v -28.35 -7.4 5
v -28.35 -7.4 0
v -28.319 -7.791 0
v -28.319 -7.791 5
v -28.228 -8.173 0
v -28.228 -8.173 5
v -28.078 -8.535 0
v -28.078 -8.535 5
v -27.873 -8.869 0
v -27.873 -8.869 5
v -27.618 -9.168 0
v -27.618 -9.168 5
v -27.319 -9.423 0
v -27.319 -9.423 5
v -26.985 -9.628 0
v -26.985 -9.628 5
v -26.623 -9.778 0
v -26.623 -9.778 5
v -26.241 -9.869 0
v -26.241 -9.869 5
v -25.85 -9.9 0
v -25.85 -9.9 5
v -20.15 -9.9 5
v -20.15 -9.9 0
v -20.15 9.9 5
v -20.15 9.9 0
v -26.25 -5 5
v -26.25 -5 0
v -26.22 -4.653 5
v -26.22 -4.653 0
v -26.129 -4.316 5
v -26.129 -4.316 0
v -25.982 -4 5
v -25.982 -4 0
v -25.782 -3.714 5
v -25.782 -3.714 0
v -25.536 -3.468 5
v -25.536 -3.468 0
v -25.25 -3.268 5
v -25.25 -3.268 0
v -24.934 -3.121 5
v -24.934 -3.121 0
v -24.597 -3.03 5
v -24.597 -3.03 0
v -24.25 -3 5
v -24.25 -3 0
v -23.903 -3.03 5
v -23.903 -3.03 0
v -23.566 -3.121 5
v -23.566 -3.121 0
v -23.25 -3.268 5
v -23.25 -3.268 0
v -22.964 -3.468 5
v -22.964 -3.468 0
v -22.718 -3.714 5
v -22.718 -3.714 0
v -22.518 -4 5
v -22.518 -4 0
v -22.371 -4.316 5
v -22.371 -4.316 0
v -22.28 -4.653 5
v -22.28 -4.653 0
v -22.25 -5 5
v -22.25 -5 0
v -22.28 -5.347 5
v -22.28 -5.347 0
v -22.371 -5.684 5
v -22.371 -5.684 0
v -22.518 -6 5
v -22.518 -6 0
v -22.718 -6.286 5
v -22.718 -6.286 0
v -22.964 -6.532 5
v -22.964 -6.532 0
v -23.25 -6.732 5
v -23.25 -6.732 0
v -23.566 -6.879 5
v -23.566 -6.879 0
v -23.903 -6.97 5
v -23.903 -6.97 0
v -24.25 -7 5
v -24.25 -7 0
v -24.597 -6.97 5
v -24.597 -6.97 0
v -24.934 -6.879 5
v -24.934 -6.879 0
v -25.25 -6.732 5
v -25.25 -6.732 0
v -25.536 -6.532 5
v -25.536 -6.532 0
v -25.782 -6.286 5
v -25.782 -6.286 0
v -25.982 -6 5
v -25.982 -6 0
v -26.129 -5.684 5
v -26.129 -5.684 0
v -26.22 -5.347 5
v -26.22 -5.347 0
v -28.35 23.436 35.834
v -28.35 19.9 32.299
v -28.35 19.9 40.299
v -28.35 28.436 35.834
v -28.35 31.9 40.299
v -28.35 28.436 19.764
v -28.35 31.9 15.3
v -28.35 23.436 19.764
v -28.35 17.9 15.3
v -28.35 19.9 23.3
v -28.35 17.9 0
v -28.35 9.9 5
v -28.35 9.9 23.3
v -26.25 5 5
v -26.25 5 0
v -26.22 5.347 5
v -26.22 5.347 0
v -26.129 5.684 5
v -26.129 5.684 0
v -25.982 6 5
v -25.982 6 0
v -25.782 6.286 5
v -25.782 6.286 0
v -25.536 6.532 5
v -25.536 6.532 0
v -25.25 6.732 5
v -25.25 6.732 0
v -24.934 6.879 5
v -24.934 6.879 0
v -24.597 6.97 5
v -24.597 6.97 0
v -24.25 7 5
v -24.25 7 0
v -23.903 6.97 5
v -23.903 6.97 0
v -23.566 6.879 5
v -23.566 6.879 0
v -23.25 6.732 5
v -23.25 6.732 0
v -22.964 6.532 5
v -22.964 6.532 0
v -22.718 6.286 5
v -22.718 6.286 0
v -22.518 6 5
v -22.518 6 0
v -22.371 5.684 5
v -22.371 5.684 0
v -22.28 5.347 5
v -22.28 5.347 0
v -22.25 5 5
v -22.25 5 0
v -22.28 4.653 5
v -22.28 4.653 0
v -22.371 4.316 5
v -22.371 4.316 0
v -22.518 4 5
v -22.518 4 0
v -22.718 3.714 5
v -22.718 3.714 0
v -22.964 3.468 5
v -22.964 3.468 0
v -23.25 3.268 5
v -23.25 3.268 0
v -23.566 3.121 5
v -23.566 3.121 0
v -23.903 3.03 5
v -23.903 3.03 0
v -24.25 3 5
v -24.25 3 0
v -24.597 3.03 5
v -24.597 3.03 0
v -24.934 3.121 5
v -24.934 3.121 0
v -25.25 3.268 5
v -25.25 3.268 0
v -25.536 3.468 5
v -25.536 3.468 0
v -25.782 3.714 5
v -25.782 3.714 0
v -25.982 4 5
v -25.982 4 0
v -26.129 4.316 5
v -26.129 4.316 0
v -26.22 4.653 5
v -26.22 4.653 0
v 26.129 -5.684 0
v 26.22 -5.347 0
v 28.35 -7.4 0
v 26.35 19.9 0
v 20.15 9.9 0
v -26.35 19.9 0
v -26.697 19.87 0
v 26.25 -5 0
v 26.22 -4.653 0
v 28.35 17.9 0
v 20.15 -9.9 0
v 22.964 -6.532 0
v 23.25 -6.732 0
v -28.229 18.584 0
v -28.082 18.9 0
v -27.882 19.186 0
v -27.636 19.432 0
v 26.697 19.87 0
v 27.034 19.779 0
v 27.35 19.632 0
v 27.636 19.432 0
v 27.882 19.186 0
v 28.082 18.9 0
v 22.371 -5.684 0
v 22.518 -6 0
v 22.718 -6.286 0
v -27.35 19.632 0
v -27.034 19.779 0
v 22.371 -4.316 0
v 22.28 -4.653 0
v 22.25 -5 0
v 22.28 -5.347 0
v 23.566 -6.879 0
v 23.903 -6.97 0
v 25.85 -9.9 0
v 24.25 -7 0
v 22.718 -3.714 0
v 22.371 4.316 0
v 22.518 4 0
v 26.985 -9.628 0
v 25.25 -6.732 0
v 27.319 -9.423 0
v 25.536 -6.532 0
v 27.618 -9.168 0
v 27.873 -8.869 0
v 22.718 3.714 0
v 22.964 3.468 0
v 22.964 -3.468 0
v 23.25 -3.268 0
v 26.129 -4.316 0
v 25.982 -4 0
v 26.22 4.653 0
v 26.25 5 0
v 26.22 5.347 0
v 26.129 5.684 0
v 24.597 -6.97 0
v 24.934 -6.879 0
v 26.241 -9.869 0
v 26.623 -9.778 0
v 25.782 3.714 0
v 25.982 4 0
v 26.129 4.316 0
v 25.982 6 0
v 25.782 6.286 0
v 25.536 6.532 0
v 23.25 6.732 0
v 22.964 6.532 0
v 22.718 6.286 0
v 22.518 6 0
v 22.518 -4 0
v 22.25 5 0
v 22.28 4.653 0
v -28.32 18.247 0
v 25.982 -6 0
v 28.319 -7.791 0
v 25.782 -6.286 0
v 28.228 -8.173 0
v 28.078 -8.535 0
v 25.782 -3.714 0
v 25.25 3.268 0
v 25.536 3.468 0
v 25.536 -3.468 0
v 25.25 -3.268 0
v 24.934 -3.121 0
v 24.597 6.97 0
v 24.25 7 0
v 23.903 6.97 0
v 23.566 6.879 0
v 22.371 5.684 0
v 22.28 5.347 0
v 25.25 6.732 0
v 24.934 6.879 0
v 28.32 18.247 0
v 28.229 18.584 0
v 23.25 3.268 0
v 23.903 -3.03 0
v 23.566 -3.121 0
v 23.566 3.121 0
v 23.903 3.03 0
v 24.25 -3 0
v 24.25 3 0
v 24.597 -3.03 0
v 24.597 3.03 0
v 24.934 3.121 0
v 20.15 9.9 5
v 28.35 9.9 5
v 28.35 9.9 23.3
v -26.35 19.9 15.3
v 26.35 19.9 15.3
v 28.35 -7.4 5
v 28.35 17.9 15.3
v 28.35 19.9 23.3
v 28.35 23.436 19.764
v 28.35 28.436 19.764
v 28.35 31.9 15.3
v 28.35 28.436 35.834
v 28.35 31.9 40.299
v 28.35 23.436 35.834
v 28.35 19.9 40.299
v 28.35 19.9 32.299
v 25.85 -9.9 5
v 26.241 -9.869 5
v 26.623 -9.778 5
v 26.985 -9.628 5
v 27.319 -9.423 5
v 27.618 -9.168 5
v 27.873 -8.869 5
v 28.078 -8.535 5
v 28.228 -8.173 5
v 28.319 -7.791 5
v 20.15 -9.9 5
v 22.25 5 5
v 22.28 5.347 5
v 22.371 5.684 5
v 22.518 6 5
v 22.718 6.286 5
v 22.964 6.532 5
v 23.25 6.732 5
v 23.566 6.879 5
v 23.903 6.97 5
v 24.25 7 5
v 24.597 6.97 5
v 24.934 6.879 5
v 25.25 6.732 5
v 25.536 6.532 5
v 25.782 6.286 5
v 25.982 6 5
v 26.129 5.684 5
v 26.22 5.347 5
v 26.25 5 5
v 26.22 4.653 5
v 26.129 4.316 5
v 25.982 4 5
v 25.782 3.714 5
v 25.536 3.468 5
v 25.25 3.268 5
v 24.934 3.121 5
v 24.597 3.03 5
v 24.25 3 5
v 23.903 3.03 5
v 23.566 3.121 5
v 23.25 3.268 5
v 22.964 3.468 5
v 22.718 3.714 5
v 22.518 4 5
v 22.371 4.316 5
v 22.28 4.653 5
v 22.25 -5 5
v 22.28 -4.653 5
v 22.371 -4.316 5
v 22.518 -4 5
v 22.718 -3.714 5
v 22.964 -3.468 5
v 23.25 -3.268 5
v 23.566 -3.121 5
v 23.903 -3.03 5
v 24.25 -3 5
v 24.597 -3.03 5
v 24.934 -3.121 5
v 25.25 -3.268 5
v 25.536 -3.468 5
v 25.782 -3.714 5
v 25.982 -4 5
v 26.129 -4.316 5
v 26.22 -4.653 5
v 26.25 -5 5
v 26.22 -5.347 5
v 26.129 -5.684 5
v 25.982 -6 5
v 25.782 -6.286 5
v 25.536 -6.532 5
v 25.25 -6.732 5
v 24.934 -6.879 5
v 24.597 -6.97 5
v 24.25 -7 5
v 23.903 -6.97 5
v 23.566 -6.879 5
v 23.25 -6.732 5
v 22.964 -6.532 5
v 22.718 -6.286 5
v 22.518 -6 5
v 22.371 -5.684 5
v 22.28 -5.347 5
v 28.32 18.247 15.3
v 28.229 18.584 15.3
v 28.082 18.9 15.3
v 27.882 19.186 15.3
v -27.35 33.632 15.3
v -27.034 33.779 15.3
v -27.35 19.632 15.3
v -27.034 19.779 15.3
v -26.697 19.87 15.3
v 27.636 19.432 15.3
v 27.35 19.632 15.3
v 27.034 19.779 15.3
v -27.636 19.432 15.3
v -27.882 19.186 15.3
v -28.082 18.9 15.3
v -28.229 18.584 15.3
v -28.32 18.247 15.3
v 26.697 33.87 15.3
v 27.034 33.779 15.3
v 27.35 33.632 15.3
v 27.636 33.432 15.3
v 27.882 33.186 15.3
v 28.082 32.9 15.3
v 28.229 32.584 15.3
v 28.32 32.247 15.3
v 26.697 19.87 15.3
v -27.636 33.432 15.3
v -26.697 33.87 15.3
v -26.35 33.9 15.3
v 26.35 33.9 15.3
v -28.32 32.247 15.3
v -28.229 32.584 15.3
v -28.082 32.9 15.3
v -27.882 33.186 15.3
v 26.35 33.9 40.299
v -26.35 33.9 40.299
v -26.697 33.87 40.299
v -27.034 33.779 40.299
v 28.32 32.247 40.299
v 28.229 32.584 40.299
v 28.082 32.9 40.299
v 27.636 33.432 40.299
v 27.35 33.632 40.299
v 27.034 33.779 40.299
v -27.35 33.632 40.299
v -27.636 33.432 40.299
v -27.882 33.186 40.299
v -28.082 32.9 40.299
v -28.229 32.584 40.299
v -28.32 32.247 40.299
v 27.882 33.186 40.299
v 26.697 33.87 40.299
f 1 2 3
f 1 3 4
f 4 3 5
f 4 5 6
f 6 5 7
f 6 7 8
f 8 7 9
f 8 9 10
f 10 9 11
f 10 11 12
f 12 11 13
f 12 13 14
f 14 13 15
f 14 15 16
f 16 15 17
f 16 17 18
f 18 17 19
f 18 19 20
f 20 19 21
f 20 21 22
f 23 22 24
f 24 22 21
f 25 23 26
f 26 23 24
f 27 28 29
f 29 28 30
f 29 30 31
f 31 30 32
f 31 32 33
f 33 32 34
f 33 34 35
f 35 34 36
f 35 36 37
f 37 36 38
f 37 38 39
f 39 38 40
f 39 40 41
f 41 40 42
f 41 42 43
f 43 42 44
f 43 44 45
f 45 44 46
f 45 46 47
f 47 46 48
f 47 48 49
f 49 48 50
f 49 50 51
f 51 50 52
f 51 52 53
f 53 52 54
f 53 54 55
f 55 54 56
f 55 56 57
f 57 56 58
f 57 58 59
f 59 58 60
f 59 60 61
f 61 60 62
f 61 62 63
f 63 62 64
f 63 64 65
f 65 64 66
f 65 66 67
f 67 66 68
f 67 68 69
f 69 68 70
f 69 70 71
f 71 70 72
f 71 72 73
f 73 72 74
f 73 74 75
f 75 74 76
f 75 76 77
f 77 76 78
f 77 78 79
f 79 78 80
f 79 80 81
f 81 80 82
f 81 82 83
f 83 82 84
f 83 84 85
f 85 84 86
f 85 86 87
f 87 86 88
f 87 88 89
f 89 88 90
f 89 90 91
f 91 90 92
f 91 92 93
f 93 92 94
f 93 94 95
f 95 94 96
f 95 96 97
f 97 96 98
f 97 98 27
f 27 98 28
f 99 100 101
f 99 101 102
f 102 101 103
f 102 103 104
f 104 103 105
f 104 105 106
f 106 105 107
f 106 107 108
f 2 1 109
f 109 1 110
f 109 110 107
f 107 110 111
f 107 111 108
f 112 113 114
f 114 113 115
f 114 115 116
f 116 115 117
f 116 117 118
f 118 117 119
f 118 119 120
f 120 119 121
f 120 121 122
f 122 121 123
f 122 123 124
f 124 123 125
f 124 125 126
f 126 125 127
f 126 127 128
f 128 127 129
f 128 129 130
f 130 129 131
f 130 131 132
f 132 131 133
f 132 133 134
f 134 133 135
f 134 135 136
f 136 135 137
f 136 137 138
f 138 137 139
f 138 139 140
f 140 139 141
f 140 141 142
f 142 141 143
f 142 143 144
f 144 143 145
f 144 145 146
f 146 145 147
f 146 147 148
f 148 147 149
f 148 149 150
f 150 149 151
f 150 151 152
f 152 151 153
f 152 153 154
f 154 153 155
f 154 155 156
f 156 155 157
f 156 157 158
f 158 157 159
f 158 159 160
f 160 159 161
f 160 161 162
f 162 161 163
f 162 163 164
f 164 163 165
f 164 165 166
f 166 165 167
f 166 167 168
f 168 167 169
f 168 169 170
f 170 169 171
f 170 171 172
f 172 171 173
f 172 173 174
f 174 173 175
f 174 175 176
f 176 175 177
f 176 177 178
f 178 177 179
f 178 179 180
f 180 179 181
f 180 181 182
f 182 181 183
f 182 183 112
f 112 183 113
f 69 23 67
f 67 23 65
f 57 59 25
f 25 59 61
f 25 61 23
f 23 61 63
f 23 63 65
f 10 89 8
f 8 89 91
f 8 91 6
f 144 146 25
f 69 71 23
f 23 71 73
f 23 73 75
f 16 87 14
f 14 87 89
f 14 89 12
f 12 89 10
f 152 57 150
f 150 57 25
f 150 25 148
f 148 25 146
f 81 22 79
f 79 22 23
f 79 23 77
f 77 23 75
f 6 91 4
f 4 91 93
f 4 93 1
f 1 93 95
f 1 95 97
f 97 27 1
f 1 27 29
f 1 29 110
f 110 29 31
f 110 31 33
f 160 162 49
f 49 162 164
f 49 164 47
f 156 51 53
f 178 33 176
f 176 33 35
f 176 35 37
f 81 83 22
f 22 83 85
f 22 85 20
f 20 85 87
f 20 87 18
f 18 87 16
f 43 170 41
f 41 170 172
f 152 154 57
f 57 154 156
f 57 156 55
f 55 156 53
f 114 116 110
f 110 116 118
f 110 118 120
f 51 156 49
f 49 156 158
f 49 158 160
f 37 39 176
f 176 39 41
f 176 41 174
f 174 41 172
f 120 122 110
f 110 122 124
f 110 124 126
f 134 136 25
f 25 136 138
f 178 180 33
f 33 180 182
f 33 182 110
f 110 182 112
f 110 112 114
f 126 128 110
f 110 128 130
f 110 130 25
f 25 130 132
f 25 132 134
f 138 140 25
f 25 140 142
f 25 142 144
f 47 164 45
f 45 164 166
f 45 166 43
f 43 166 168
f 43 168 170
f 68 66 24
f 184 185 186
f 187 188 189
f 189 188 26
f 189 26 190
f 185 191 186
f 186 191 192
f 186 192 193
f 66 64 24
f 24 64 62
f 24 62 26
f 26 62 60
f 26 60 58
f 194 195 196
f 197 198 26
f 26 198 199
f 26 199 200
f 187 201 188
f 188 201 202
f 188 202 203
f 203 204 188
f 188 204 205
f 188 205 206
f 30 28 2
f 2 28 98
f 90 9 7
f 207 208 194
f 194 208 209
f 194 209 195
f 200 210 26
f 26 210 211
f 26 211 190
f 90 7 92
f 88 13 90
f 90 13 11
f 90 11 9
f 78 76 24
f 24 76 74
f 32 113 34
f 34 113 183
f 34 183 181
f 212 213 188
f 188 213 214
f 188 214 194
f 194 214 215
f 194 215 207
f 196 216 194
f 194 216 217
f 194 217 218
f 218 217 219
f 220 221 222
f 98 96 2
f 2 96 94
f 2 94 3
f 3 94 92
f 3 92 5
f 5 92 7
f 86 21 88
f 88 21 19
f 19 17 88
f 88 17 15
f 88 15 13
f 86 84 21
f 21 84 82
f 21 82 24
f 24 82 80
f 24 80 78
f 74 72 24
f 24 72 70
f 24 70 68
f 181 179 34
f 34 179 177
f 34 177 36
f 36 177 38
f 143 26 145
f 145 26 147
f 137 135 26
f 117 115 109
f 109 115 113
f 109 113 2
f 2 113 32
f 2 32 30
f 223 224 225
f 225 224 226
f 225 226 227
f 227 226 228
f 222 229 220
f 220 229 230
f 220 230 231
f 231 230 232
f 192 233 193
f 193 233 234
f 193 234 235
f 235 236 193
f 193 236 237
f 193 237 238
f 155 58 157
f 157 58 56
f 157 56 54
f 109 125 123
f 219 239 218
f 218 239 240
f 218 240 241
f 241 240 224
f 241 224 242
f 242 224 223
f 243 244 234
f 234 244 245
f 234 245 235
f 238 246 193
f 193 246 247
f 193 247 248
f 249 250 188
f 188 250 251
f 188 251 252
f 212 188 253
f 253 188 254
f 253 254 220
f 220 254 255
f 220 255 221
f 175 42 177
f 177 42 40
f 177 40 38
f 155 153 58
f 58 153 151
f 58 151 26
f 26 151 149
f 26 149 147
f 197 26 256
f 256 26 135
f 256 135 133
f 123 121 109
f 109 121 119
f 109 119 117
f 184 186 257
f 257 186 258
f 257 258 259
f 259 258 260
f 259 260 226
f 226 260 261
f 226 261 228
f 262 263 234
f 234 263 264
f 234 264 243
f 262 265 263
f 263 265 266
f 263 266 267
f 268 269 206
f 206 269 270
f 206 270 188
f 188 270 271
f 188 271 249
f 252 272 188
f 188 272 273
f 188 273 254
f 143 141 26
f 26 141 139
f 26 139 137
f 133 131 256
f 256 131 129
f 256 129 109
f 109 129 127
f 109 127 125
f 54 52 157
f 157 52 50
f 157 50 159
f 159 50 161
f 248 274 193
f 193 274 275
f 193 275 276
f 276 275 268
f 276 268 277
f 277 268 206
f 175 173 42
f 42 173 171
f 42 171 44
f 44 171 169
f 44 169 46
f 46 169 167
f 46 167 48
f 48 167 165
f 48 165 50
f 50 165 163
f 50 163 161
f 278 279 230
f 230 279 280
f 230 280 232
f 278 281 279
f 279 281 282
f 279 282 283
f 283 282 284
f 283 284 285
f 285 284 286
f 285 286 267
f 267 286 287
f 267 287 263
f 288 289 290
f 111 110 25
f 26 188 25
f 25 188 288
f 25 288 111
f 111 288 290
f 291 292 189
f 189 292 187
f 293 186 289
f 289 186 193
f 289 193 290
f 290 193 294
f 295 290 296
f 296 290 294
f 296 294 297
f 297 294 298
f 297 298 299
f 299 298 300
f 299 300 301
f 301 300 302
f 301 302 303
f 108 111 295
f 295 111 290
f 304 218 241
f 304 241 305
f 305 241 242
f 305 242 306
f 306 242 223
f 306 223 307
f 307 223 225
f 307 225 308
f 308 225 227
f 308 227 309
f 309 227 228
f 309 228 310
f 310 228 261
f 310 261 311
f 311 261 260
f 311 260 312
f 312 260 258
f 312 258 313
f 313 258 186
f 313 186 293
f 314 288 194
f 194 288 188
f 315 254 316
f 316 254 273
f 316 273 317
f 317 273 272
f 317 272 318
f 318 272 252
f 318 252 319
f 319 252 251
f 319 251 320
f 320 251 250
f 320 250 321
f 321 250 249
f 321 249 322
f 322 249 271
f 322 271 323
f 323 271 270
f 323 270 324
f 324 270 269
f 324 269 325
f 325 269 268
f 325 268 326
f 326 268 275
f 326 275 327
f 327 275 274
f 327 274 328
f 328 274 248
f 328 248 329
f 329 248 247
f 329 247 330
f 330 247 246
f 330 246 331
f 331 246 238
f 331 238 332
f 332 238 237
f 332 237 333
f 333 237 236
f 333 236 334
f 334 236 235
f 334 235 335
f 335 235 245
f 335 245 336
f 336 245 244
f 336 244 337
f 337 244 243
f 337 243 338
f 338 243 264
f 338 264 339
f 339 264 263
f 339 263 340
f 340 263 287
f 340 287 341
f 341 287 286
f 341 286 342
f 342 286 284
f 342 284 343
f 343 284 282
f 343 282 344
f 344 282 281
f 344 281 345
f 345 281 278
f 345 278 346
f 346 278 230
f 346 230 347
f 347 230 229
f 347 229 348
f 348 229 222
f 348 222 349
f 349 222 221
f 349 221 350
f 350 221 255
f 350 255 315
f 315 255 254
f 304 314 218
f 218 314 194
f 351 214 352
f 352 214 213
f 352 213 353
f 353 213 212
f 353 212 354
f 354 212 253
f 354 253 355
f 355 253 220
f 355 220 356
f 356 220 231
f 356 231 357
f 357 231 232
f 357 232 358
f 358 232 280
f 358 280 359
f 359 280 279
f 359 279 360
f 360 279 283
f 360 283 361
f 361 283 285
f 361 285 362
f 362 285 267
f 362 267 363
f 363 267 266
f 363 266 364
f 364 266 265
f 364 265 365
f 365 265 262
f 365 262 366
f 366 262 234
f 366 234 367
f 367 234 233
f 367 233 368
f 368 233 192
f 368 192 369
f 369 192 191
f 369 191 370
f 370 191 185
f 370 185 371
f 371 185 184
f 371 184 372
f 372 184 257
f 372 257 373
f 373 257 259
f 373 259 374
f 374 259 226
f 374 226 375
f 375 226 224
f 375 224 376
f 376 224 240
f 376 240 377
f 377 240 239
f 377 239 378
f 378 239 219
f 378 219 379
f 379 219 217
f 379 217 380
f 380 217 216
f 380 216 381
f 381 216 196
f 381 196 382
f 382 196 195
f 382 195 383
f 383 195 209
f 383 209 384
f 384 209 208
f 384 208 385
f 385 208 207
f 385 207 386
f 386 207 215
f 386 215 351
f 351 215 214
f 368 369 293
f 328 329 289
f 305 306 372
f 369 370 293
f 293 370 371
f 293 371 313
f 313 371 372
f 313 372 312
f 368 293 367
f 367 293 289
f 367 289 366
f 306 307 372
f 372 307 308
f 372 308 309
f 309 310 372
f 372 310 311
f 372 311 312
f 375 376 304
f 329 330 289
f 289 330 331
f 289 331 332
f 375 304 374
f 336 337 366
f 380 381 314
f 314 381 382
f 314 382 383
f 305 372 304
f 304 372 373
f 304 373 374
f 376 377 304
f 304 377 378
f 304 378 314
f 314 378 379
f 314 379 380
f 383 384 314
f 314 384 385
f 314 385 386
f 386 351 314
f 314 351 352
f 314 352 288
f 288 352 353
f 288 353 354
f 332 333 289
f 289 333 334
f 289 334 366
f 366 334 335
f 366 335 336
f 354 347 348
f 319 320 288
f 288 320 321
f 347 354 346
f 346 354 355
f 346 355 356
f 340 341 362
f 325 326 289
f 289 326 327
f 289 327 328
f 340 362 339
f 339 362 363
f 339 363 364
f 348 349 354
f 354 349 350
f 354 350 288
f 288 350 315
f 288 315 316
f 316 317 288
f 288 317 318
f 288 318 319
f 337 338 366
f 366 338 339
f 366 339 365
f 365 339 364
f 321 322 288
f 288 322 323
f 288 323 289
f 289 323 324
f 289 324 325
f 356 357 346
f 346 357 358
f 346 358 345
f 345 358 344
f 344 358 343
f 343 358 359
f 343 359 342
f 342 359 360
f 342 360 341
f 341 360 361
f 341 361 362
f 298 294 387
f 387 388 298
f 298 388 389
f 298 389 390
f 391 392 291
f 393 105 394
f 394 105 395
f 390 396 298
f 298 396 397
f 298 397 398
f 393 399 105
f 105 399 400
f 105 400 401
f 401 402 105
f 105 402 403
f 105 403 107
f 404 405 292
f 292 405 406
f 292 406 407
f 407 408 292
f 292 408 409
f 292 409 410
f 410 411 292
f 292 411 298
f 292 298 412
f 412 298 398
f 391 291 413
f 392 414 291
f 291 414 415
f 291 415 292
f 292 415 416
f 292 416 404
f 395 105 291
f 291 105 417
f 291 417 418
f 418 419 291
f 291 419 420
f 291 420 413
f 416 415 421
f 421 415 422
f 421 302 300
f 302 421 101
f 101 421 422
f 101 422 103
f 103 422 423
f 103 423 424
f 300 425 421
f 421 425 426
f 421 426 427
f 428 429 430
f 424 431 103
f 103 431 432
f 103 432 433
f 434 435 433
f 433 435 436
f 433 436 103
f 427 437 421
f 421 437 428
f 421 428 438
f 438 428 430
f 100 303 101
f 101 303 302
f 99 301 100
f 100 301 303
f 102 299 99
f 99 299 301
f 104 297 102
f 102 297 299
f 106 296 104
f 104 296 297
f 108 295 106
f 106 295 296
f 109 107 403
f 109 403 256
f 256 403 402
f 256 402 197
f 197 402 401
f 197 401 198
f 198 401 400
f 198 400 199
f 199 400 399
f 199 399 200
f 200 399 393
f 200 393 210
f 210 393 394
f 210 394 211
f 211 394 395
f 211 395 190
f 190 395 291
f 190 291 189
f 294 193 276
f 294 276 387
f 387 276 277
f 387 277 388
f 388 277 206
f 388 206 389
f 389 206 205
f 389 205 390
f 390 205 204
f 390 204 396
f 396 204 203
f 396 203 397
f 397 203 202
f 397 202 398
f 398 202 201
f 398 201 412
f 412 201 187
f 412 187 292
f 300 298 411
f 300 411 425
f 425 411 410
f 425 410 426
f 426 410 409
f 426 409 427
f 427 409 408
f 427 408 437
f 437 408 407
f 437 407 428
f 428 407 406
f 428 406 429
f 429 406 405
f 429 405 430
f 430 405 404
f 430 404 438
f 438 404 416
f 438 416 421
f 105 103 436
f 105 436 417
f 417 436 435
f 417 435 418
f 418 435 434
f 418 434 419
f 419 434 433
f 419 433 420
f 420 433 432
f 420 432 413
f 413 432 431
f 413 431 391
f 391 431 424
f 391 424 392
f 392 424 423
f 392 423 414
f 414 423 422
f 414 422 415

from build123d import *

# Parameters (mm, degrees)
SKETCH1_R               = 2
FORMA_B_SICA_DEPTH      = 5
FORMA_B_SICA_2_DEPTH    = 5
BOSS_EXTRUDE2_DEPTH     = 23.3
CARRIL_CREMALLERA_DEPTH = 56.7
ELIMINAR_FILETE_DEPTH   = 23.3
FILLET2_R               = 2


with BuildPart() as part:
    # Sketch1 → Forma básica (new body)
    with BuildSketch(Plane.XY):
        with BuildLine():
            ThreePointArc((-25.85, -9.9), (-27.617766953, -9.167766953), (-28.35, -7.4))
            Line((-28.35, -7.4), (-28.35, 9.9))
            Line((-28.35, 9.9), (-20.15, 9.9))
            Line((-20.15, 9.9), (-20.15, -9.9))
            Line((-20.15, -9.9), (-25.85, -9.9))
        make_face()
        with Locations((-24.25, -5)):
            Circle(SKETCH1_R, mode=Mode.SUBTRACT)
        with Locations((-24.25, 5)):
            Circle(SKETCH1_R, mode=Mode.SUBTRACT)
    extrude(amount=FORMA_B_SICA_DEPTH)



with BuildPart() as body_2:
    # Sketch1 → Forma b_sica 2 (new body)
    with BuildSketch(Plane.XY):
        with BuildLine():
            ThreePointArc((28.35, -7.4), (27.617766953, -9.167766953), (25.85, -9.9))
            Line((25.85, -9.9), (20.15, -9.9))
            Line((20.15, -9.9), (20.15, 9.9))
            Line((20.15, 9.9), (28.35, 9.9))
            Line((28.35, 9.9), (28.35, -7.4))
        make_face()
        with Locations((24.25, 5)):
            Circle(SKETCH1_R, mode=Mode.SUBTRACT)
        with Locations((24.25, -5)):
            Circle(SKETCH1_R, mode=Mode.SUBTRACT)
    extrude(amount=FORMA_B_SICA_2_DEPTH)


with BuildPart() as part_1:
    add(part.part)

    add(body_2.part)  # Boss-Extrude2 merges body 2
    # Sketch1<3> → Boss-Extrude2 (add)
    with BuildSketch(Plane.XY):
        with BuildLine():
            Line((-28.35, 9.9), (-20.15, 9.9))
            Line((-20.15, 9.9), (20.15, 9.9))
            Line((20.15, 9.9), (28.35, 9.9))
            Line((28.35, 9.9), (28.35, 17.4))
            ThreePointArc((28.35, 17.4), (27.617766953, 19.167766953), (25.85, 19.9))
            Line((25.85, 19.9), (-25.85, 19.9))
            ThreePointArc((-25.85, 19.9), (-27.617766953, 19.167766953), (-28.35, 17.4))
            Line((-28.35, 17.4), (-28.35, 9.9))
        make_face()
    extrude(amount=BOSS_EXTRUDE2_DEPTH)

    # Sketch2 → Carril cremallera (add)
    with BuildSketch(Plane(origin=(28.35, 0, 0), x_dir=(0, 0, -1), z_dir=(1, 0, 0))):
        Polygon((-23.3, 19.9), (-19.764466094, 23.435533906), (-19.764466094, 28.435533906), (-35.834466094, 28.435533906), (-35.834466094, 23.435533906), (-32.298932188, 19.9), (-40.298932188, 19.9), (-40.298932188, 33.9), (-15.3, 33.9), (-15.3, 19.9), align=None)
    extrude(amount=-CARRIL_CREMALLERA_DEPTH)

    # Sketch3 → Eliminar filete (add)
    with BuildSketch(Plane.XY.offset(23.3)):
        with BuildLine():
            Line((-28.35, 17.4), (-28.35, 19.9))
            Line((-28.35, 19.9), (-25.85, 19.9))
            ThreePointArc((-25.85, 19.9), (-27.617766953, 19.167766953), (-28.35, 17.4))
        make_face()
        with BuildLine():
            Line((28.35, 19.9), (25.85, 19.9))
            ThreePointArc((25.85, 19.9), (27.617766953, 19.167766953), (28.35, 17.4))
            Line((28.35, 17.4), (28.35, 19.9))
        make_face()
    extrude(amount=-ELIMINAR_FILETE_DEPTH)

    # Fillet2
    fillet2_edges = [part_1.edges().sort_by_distance(p)[0] for p in [
        (28.35, 33.9, 27.799466094),
        (-28.35, 33.9, 27.799466094),
        (-28.35, 19.9, 7.65),
        (28.35, 19.9, 7.65),
    ]]
    fillet(fillet2_edges, radius=FILLET2_R)


solid = part_1.part
